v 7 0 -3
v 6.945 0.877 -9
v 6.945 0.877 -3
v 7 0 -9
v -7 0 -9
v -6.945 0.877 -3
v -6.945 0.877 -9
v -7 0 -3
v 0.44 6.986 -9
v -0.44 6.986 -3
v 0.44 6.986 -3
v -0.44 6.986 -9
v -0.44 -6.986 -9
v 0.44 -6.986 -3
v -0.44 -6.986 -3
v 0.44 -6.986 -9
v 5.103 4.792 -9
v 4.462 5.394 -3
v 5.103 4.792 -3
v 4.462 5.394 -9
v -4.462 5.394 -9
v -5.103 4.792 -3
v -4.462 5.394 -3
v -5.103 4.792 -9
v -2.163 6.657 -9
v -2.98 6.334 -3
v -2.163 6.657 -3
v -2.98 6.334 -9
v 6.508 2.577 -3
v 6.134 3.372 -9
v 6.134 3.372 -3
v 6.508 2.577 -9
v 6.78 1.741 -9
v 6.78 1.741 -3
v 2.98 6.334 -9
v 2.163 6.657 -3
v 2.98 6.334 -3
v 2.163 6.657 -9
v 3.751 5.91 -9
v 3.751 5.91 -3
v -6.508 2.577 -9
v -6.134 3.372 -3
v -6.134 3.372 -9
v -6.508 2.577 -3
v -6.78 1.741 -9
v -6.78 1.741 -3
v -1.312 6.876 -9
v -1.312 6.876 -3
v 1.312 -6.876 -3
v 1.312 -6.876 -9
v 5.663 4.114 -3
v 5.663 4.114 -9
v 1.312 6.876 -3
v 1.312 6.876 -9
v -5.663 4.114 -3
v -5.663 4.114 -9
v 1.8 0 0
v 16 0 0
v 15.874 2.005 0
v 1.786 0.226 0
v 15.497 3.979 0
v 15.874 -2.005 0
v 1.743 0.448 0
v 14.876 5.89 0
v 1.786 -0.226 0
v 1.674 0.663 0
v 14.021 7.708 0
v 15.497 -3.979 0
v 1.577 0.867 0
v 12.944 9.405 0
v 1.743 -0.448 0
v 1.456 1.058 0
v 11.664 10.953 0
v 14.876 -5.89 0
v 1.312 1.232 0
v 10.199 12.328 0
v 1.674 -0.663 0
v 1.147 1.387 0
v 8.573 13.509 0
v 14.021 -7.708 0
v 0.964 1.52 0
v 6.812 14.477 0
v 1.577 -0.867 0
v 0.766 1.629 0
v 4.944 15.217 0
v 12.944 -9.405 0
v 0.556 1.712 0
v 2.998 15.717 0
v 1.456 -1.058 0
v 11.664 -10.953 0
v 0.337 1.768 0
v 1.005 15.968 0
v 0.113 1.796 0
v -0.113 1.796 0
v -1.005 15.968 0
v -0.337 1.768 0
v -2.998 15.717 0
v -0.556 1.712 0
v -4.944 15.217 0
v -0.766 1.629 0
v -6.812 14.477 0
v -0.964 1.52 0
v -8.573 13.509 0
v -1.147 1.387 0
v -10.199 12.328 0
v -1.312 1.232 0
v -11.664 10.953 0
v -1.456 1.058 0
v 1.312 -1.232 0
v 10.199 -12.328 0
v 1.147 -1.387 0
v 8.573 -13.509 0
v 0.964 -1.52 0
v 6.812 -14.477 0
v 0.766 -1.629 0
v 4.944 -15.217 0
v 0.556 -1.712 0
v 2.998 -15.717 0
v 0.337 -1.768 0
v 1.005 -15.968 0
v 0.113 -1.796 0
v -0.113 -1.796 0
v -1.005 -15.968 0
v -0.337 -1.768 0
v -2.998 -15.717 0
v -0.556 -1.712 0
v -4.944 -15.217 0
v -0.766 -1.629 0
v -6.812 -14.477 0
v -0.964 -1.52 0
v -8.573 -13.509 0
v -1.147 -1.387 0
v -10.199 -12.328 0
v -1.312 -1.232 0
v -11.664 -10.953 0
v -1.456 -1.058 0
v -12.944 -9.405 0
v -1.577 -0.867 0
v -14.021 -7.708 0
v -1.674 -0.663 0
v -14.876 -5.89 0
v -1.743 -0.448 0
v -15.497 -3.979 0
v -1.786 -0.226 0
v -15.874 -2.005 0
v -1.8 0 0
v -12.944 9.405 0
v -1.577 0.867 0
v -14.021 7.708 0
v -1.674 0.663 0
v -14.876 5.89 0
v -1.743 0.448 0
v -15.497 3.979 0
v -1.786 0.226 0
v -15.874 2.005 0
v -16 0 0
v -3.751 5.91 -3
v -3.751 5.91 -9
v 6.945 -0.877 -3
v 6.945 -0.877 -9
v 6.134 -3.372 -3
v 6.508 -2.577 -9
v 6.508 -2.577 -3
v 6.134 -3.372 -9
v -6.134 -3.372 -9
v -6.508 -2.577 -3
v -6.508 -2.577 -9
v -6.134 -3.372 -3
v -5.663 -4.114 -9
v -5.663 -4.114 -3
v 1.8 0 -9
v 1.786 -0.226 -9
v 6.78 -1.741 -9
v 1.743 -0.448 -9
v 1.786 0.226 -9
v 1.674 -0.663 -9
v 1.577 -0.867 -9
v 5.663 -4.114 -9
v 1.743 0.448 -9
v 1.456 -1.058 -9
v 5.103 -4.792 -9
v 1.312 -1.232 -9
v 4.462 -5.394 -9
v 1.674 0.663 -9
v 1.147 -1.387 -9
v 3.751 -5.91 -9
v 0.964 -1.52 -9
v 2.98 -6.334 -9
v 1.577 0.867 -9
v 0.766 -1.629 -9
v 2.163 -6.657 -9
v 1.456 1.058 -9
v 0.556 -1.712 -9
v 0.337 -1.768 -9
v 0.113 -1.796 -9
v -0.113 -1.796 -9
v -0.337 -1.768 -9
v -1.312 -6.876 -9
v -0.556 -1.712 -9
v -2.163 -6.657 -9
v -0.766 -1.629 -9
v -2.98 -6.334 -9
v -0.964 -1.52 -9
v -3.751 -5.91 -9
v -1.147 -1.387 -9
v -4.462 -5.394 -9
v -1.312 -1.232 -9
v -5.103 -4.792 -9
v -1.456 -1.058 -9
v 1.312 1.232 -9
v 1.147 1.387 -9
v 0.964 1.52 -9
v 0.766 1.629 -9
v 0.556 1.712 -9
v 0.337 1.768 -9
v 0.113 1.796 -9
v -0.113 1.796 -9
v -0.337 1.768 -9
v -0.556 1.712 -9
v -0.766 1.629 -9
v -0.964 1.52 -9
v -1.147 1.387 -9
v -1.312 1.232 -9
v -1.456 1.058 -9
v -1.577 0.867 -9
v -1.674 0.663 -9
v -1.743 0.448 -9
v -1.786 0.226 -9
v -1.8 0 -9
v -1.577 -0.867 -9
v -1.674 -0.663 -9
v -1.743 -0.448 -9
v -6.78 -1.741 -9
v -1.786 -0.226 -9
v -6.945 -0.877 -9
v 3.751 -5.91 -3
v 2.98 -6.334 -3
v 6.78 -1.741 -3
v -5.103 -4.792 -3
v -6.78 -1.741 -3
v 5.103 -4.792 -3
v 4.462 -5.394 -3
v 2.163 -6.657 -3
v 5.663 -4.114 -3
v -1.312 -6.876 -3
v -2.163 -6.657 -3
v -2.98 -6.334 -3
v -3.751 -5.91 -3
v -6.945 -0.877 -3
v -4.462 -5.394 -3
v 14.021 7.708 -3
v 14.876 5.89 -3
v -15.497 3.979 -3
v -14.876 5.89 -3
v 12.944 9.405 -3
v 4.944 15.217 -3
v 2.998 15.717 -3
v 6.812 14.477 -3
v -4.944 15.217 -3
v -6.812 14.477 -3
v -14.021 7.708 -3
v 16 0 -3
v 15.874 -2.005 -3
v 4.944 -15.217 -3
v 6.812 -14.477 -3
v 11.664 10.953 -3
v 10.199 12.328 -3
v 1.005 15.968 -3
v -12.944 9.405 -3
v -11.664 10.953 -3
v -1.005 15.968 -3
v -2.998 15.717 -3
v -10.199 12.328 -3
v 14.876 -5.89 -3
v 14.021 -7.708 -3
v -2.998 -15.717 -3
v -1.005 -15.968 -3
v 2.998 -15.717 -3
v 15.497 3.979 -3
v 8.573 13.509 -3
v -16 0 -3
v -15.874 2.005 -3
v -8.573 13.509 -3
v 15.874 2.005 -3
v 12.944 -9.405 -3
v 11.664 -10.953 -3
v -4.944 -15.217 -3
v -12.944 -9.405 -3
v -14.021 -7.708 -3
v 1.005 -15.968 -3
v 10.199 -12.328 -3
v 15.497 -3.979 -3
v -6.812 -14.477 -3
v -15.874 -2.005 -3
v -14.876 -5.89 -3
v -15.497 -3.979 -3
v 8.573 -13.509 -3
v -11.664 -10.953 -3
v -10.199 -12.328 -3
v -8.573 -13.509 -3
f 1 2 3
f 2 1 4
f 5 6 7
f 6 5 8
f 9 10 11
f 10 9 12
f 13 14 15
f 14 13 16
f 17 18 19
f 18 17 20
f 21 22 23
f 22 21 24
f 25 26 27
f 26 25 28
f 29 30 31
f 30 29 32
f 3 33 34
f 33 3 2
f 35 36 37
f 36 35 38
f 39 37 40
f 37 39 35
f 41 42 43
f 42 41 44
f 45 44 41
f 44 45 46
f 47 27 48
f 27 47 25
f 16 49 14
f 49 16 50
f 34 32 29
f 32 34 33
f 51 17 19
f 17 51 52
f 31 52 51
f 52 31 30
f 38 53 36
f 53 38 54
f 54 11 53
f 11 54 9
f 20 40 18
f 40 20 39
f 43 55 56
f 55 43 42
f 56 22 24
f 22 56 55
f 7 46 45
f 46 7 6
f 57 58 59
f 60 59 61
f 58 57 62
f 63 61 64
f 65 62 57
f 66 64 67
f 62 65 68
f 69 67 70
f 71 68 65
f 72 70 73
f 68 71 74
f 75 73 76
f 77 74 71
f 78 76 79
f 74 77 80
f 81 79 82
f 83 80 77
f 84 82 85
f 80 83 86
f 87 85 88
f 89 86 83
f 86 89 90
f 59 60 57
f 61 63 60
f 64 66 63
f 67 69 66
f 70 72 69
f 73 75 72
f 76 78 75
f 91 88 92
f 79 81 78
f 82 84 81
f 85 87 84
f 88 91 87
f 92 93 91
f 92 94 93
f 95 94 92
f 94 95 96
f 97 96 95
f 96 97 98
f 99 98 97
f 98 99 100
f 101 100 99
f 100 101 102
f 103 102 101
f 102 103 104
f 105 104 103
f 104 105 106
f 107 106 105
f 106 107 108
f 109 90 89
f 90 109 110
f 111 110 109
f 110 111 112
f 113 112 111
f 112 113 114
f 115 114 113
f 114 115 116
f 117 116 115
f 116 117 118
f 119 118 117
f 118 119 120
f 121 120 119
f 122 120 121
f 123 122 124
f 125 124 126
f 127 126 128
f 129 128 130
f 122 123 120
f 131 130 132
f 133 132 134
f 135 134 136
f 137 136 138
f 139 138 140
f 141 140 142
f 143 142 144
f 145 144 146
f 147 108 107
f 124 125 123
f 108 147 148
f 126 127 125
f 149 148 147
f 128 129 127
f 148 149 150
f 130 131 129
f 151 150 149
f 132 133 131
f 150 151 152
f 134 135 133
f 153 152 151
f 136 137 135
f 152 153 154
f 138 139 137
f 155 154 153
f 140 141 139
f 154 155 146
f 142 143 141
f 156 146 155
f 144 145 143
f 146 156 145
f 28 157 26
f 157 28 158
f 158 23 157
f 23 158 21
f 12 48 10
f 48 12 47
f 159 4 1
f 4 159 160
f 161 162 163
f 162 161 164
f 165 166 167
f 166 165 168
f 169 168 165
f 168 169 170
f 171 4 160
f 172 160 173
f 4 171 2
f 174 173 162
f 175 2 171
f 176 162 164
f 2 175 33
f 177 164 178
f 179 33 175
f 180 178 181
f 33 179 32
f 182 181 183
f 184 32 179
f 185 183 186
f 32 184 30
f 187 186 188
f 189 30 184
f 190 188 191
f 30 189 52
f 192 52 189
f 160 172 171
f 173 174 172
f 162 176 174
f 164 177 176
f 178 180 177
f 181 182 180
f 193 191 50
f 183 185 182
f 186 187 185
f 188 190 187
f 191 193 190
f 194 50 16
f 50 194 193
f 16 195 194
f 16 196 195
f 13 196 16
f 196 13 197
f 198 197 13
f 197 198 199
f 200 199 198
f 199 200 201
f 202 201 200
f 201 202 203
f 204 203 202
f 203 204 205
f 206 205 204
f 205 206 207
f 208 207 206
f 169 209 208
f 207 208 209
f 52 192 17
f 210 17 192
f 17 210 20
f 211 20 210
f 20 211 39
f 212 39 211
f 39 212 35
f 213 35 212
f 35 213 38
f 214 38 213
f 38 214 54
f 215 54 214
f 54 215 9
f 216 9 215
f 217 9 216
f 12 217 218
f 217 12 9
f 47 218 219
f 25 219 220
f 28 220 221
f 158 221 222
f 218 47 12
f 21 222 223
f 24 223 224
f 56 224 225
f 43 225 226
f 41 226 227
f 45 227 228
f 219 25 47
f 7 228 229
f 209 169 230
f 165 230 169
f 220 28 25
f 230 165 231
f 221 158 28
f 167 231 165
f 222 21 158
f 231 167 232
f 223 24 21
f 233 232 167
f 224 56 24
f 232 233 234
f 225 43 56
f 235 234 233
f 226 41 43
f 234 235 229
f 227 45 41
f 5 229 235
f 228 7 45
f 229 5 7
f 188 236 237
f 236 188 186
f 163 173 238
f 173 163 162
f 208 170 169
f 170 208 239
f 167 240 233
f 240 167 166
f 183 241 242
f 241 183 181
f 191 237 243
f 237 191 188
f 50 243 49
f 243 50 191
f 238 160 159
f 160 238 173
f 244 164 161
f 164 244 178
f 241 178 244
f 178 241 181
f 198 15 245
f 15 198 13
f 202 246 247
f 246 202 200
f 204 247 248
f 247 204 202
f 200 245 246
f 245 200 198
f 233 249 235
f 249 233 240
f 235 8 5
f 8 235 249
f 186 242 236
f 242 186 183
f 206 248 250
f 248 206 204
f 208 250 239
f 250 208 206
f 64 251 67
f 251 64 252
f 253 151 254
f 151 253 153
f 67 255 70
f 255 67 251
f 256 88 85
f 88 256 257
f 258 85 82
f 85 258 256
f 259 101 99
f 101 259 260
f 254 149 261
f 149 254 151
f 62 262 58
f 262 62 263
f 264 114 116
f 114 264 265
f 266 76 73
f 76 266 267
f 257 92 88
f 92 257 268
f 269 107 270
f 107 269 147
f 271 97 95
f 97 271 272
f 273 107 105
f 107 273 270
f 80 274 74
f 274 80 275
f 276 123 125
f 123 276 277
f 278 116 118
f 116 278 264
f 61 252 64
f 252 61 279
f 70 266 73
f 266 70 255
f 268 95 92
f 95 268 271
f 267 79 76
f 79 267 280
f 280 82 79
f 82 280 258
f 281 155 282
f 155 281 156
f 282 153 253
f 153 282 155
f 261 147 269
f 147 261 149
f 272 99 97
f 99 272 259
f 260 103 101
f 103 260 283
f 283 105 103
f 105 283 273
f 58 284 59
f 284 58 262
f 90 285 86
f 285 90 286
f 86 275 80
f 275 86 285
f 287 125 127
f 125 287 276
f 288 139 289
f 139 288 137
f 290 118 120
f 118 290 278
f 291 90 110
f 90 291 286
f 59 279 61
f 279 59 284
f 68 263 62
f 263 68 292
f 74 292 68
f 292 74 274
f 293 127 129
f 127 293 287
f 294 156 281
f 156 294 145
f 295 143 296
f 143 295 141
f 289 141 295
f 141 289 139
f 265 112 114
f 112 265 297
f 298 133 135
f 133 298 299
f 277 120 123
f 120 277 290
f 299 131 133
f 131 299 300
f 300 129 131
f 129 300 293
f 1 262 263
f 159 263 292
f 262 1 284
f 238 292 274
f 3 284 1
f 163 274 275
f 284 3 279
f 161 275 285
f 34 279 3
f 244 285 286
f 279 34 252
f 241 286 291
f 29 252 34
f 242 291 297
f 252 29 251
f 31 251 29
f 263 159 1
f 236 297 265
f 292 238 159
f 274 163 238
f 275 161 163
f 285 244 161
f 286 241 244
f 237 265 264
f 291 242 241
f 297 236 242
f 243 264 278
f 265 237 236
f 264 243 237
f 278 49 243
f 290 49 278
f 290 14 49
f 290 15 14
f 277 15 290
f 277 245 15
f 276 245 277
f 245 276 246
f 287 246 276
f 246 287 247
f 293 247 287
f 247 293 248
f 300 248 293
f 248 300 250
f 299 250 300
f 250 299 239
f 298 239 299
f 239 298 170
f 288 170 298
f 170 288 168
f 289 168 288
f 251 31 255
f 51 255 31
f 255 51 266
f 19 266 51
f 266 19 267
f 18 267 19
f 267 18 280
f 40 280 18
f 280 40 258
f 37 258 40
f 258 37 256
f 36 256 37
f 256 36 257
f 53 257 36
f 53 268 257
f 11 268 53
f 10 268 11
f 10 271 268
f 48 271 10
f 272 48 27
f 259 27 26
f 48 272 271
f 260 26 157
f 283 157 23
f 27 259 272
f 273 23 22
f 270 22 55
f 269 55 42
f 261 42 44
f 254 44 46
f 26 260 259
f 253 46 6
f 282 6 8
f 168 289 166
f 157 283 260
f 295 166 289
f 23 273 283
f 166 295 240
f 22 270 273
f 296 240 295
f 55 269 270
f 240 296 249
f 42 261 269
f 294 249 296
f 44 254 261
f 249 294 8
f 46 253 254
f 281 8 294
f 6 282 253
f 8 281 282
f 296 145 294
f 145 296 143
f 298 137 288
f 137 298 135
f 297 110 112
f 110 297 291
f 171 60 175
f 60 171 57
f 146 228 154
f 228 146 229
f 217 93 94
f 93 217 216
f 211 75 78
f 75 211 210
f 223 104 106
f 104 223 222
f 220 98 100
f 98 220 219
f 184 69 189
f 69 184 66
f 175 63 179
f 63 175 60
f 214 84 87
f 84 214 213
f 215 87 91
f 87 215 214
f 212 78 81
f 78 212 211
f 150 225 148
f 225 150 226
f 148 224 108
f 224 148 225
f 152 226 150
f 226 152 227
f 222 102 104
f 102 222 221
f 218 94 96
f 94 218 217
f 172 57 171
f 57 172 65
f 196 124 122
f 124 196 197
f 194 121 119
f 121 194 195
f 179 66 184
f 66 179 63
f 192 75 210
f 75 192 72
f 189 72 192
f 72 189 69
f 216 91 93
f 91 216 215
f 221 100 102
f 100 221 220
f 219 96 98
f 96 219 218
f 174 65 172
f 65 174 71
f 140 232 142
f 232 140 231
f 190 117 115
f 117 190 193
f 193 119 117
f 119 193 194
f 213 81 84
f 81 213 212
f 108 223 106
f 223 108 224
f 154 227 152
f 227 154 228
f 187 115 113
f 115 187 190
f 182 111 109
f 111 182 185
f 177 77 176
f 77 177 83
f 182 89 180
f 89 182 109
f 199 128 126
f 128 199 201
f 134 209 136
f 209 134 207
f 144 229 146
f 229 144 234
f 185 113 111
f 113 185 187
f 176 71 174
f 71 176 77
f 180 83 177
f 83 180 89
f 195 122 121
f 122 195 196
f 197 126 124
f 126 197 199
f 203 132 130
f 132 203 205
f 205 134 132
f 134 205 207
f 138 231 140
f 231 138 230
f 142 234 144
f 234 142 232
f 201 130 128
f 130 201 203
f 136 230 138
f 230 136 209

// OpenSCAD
$fn = 50;


difference() {
	union() {
		translate(v = [0, 0, -9.0000000000]) {
			cylinder(h = 9, r = 7.0000000000);
		}
		translate(v = [0, 0, -3.0000000000]) {
			cylinder(h = 3, r = 16.0000000000);
		}
	}
	union() {
		#translate(v = [0, 0, -9]) {
			cylinder(h = 9, r = 1.8000000000);
		}
	}
}
